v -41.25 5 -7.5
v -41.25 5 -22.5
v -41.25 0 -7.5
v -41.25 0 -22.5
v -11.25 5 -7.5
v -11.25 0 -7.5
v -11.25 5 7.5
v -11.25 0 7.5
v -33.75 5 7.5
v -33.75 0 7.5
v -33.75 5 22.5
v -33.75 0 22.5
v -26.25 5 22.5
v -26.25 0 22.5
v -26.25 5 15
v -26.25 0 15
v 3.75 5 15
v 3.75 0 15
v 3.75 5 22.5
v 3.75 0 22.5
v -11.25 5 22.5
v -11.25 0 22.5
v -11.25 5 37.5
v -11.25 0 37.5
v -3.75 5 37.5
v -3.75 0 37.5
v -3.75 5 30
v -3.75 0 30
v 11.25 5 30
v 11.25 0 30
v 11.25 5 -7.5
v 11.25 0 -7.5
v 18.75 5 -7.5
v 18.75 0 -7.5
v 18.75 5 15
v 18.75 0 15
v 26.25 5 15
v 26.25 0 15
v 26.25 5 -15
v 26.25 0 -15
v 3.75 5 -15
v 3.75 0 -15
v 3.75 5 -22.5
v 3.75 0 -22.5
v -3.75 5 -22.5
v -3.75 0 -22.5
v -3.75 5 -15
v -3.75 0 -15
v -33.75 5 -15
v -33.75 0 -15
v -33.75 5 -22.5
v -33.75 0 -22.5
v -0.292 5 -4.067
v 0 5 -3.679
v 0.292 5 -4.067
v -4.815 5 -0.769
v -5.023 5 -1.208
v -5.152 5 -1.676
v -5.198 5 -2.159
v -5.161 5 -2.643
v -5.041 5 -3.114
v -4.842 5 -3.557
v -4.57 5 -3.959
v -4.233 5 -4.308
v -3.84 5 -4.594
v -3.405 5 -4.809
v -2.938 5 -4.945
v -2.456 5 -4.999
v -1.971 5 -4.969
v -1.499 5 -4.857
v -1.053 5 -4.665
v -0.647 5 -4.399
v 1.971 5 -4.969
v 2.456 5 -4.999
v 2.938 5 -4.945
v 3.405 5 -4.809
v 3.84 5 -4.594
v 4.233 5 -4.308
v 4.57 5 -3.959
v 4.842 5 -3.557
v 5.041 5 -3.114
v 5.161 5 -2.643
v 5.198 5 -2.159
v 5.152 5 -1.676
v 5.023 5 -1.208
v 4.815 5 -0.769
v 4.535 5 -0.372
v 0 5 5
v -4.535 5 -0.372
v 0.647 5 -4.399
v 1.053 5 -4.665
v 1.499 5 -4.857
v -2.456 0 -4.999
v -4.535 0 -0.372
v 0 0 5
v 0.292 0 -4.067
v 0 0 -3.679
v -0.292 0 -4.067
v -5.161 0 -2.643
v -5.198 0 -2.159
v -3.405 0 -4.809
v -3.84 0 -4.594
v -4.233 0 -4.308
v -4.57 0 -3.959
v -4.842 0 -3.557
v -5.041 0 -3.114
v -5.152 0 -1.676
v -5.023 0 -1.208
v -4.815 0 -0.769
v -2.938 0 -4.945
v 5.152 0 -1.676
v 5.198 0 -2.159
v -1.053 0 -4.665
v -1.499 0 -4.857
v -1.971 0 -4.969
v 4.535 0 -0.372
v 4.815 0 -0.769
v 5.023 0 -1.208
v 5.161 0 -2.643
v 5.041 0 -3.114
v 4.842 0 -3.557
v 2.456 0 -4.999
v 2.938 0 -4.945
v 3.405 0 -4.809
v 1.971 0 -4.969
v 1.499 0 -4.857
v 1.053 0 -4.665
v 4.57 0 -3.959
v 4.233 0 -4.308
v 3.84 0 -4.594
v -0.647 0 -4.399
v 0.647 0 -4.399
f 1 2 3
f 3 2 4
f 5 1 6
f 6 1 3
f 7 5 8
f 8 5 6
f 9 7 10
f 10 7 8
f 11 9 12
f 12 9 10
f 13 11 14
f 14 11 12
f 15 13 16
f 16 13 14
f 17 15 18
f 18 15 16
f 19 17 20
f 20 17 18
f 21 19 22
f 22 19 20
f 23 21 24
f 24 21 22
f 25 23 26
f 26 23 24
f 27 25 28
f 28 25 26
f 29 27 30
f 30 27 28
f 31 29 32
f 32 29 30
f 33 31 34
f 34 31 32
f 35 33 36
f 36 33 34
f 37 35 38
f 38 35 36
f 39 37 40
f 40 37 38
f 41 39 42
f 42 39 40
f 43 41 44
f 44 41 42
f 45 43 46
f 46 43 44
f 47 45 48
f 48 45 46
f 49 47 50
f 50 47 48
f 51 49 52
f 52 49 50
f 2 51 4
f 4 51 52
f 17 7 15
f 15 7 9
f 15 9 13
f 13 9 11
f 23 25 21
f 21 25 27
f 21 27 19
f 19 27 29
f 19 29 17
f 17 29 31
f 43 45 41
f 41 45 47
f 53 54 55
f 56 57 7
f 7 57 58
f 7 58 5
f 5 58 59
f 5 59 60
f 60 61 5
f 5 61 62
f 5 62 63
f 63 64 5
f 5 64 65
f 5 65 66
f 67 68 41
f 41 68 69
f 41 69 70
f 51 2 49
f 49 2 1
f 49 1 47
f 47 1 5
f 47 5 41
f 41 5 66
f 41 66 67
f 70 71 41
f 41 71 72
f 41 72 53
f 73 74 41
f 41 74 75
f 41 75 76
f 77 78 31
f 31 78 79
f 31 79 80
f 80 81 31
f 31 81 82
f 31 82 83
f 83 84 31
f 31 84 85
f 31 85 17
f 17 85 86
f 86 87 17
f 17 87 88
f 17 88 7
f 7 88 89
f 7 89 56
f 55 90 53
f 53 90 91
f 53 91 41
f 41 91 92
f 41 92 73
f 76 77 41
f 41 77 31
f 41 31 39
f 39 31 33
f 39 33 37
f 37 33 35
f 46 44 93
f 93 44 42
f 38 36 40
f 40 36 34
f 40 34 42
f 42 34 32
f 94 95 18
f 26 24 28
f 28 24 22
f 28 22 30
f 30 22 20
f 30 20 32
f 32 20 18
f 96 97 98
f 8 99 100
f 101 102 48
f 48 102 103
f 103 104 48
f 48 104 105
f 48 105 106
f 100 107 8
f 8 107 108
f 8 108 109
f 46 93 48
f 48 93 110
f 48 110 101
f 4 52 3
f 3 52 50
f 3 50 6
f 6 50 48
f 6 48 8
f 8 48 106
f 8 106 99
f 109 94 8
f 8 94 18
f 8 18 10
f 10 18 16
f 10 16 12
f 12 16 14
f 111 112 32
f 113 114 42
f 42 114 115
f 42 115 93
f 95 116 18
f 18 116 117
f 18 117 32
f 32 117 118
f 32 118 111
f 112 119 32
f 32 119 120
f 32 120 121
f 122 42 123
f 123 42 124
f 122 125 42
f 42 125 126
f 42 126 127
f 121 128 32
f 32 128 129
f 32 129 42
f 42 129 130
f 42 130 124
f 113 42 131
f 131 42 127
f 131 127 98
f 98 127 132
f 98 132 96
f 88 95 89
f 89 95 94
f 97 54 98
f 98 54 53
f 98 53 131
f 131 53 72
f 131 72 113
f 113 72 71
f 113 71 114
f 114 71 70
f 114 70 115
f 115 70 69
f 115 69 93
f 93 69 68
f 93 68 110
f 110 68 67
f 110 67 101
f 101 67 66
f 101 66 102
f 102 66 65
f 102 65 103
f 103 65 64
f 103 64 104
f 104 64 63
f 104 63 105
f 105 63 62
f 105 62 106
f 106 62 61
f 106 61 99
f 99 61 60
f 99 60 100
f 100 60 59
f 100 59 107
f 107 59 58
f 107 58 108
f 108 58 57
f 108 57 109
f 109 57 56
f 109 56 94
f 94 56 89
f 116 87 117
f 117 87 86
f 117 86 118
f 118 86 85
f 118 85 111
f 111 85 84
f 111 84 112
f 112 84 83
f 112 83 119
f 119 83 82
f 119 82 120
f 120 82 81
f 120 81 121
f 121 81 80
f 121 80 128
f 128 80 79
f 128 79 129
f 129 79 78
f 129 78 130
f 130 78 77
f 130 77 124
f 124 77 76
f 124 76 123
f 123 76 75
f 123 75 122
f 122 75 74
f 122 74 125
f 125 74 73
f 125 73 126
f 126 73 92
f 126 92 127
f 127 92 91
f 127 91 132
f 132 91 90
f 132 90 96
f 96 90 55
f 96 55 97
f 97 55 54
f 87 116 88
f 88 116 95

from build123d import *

# Parameters (mm, degrees)
SKETCH1_W           = 22.5
SKETCH1_H           = 30
SKETCH1_W_2         = 7.5
SKETCH1_H_2         = 7.5
BOSS_EXTRUDE1_DEPTH = 5
CUT_EXTRUDE3_DEPTH  = 10


with BuildPart() as part:
    # Sketch1 → Boss-Extrude1 (new body)
    with BuildSketch(Plane(origin=(0, 0, 0), x_dir=(1, 0, 0), z_dir=(0, 1, 0))):
        Polygon((-11.25, 7.5), (-11.25, 15), (-33.75, 15), (-33.75, 22.5), (-41.25, 22.5), (-41.25, 7.5), align=None)
        Polygon((-26.25, -15), (-11.25, -15), (-11.25, -7.5), (-33.75, -7.5), (-33.75, -22.5), (-26.25, -22.5), align=None)
        Rectangle(SKETCH1_W, SKETCH1_H)
        Polygon((11.25, -30), (11.25, -15), (3.75, -15), (3.75, -22.5), (-11.25, -22.5), (-11.25, -37.5), (-3.75, -37.5), (-3.75, -30), align=None)
        with Locations((0, 18.75)):
            Rectangle(SKETCH1_W_2, SKETCH1_H_2)
        Polygon((26.25, 15), (11.25, 15), (11.25, 7.5), (18.75, 7.5), (18.75, -15), (26.25, -15), align=None)
    extrude(amount=BOSS_EXTRUDE1_DEPTH)

    # Sketch2 → Cut-Extrude3 (cut)
    with BuildSketch(Plane(origin=(0, 5, 0), x_dir=(1, 0, 0), z_dir=(0, 1, 0))):
        with BuildLine():
            Line((0, -5), (4.534880693, 0.371878565))
            ThreePointArc((4.534880693, 0.371878565), (4.042699073, 4.459844977), (0, 3.678630324))
            ThreePointArc((0, 3.678630324), (-4.042699073, 4.459844977), (-4.534880693, 0.371878565))
            Line((-4.534880693, 0.371878565), (0, -5))
        make_face()
    extrude(amount=-CUT_EXTRUDE3_DEPTH, mode=Mode.SUBTRACT)


solid = part.part
